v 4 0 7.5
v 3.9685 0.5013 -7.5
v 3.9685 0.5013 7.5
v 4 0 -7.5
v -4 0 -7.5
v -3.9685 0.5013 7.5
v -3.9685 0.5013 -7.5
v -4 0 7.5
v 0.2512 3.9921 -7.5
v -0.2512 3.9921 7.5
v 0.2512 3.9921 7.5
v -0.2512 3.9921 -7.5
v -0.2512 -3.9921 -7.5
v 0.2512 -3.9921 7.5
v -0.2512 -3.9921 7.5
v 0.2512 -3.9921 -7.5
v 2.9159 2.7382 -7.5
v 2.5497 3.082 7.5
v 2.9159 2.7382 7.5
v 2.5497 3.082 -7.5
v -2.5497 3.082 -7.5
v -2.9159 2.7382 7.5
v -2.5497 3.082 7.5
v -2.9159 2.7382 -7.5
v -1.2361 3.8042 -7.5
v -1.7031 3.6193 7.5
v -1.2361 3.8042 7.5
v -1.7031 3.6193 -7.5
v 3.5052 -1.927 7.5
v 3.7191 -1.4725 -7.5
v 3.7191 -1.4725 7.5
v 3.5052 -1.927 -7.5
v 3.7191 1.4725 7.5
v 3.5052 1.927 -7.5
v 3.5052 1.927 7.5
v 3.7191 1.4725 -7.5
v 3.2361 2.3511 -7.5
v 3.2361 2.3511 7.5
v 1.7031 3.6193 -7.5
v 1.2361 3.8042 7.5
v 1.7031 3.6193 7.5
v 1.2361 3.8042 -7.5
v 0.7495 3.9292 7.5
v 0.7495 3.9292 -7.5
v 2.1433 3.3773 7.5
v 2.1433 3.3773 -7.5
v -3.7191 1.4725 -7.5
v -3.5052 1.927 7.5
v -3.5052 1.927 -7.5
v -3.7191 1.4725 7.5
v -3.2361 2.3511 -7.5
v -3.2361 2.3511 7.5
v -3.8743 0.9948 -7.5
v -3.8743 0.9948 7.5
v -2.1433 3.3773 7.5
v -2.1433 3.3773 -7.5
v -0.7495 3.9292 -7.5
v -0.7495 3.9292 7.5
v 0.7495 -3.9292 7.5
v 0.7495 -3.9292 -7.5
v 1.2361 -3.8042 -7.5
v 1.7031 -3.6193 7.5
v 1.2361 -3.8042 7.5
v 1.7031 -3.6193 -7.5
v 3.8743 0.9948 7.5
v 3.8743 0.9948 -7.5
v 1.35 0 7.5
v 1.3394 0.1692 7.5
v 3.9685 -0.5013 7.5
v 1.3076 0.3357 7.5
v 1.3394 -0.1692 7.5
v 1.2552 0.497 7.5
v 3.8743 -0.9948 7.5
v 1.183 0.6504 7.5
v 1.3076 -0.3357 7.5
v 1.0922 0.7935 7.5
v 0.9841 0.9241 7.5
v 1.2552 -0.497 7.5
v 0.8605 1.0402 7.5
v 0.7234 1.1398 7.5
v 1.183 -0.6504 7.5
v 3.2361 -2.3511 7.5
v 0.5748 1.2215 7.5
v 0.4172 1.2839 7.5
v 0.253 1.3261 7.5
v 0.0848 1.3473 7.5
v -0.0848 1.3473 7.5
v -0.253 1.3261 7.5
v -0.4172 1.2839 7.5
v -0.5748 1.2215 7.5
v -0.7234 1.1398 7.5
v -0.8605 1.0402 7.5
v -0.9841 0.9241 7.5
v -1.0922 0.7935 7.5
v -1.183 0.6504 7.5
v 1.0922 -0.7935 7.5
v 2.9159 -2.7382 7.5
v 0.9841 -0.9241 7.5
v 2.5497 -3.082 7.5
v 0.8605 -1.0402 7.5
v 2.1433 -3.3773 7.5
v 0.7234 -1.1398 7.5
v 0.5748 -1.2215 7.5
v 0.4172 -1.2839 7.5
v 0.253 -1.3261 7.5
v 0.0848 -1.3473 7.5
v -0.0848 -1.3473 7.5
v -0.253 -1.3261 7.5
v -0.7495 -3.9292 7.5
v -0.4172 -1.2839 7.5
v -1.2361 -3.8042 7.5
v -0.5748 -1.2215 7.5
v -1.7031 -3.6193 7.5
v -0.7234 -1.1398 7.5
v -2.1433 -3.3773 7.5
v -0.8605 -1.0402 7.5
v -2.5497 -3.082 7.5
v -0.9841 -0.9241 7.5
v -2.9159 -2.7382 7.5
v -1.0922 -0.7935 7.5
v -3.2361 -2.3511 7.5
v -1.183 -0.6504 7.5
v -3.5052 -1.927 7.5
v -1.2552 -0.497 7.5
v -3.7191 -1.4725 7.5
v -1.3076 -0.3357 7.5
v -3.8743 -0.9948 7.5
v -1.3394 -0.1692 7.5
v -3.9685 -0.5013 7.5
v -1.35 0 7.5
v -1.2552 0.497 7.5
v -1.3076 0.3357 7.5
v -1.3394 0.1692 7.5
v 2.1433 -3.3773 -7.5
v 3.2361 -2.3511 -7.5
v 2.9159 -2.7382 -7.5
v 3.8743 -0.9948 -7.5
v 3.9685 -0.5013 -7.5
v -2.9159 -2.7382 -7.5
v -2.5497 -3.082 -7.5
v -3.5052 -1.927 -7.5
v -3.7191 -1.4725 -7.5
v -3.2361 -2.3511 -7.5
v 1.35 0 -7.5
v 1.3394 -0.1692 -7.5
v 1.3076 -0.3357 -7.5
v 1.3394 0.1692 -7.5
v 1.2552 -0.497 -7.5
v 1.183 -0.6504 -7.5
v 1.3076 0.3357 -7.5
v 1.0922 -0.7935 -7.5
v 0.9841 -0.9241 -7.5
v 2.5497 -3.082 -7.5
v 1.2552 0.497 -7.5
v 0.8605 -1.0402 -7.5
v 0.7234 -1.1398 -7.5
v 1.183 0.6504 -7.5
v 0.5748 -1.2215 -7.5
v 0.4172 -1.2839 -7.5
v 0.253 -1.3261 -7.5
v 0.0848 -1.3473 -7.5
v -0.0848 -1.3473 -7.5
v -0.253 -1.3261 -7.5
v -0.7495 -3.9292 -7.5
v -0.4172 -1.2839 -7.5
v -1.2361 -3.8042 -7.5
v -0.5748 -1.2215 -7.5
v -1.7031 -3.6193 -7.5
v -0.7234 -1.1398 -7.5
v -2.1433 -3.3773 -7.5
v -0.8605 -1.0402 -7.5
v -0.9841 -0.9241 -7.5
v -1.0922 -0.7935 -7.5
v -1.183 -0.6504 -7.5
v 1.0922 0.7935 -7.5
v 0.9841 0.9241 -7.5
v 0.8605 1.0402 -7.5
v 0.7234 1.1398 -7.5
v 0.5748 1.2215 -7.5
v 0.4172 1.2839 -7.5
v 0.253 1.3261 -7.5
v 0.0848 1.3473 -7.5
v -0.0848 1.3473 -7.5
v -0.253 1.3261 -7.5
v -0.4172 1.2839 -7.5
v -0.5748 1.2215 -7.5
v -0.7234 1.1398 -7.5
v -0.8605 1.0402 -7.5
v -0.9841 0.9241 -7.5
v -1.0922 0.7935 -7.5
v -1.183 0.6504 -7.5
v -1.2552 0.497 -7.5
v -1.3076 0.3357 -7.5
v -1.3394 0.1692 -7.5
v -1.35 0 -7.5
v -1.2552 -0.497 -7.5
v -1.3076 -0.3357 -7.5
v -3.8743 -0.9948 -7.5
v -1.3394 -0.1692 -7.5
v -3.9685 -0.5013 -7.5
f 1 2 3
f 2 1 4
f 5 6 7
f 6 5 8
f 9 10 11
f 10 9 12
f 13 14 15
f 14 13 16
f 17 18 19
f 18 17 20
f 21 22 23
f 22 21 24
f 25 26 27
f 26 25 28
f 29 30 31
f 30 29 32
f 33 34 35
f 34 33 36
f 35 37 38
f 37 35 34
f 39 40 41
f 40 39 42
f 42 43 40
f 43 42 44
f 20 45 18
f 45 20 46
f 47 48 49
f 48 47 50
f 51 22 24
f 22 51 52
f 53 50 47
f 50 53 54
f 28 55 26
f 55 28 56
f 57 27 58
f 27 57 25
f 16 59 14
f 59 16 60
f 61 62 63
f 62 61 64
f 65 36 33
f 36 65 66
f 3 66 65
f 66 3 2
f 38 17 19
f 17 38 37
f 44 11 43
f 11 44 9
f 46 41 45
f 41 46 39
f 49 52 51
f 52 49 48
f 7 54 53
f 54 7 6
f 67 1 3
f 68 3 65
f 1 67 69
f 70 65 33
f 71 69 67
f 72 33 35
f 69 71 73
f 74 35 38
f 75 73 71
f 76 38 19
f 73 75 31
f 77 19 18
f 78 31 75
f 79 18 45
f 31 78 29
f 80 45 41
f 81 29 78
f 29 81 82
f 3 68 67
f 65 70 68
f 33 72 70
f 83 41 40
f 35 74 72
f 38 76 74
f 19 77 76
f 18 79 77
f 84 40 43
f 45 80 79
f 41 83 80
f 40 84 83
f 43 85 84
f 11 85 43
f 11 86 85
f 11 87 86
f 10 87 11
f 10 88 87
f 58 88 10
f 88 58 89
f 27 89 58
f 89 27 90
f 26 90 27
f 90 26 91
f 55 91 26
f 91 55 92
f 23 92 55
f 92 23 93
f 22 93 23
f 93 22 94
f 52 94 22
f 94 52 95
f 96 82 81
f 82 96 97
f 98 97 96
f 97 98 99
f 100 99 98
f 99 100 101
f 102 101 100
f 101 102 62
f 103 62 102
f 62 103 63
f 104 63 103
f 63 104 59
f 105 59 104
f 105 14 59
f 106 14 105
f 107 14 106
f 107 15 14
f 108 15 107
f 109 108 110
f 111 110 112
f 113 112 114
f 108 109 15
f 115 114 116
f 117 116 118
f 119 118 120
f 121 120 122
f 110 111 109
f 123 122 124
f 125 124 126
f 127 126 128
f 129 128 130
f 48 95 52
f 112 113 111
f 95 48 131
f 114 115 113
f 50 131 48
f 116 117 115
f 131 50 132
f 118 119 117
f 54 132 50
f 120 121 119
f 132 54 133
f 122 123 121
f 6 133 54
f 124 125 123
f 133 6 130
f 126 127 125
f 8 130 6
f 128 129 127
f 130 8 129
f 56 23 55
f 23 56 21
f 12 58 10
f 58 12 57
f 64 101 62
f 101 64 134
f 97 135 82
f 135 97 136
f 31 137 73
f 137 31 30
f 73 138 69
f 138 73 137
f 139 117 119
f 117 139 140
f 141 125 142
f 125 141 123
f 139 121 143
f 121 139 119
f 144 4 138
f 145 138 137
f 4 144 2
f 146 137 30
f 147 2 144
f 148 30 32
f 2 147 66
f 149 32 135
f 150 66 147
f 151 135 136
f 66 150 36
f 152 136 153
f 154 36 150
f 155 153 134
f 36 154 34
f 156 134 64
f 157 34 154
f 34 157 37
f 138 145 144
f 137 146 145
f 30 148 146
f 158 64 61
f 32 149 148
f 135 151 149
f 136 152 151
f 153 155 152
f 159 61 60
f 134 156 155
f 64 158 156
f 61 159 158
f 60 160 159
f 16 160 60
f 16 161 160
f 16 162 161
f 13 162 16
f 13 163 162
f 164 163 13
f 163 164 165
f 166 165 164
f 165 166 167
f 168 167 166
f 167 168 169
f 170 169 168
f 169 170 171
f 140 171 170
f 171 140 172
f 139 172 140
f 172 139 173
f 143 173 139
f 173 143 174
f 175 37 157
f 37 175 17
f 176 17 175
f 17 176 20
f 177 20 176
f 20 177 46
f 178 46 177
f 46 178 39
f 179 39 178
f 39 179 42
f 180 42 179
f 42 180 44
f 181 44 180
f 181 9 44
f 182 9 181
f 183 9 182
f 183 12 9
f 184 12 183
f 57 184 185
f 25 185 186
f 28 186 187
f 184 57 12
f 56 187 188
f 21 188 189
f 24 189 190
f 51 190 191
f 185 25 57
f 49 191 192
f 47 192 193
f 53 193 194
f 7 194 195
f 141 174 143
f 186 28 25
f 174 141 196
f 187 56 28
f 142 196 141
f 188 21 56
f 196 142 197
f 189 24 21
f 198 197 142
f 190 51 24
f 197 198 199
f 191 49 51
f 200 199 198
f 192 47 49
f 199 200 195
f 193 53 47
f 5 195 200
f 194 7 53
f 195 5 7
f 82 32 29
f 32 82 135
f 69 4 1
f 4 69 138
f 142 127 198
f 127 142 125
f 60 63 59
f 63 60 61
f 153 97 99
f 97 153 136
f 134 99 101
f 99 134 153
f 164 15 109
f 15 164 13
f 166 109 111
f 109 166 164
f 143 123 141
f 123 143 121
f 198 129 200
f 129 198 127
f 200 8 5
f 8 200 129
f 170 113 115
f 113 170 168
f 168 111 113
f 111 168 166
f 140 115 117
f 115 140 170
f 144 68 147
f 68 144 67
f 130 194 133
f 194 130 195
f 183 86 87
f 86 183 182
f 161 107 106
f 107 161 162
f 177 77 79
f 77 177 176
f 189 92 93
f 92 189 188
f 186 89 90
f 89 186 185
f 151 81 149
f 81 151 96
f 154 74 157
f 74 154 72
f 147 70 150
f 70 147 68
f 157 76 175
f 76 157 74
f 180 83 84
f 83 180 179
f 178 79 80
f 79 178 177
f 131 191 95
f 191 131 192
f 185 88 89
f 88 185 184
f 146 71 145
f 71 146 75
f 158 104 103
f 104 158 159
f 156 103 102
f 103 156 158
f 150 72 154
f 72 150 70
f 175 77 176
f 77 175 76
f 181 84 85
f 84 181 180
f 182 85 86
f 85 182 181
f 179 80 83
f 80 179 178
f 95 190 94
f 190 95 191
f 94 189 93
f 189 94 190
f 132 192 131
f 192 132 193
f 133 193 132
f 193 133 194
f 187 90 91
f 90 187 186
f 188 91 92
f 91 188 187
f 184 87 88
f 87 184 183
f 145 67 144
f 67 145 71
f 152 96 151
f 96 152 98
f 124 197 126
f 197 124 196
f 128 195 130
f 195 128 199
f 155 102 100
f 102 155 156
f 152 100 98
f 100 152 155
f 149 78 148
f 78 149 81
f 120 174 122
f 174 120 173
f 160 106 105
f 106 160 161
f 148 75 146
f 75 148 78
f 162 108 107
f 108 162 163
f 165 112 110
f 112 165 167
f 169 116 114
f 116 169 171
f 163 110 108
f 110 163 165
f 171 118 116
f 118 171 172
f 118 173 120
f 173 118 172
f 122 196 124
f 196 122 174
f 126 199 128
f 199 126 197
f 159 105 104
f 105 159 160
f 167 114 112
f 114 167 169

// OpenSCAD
$fn = 50;


difference() {
	union() {
		translate(v = [0, 0, -7.5000000000]) {
			cylinder(h = 15, r = 4.0000000000);
		}
	}
	union() {
		translate(v = [0, 0, -100.0000000000]) {
			cylinder(h = 200, r = 1.3500000000);
		}
	}
}
